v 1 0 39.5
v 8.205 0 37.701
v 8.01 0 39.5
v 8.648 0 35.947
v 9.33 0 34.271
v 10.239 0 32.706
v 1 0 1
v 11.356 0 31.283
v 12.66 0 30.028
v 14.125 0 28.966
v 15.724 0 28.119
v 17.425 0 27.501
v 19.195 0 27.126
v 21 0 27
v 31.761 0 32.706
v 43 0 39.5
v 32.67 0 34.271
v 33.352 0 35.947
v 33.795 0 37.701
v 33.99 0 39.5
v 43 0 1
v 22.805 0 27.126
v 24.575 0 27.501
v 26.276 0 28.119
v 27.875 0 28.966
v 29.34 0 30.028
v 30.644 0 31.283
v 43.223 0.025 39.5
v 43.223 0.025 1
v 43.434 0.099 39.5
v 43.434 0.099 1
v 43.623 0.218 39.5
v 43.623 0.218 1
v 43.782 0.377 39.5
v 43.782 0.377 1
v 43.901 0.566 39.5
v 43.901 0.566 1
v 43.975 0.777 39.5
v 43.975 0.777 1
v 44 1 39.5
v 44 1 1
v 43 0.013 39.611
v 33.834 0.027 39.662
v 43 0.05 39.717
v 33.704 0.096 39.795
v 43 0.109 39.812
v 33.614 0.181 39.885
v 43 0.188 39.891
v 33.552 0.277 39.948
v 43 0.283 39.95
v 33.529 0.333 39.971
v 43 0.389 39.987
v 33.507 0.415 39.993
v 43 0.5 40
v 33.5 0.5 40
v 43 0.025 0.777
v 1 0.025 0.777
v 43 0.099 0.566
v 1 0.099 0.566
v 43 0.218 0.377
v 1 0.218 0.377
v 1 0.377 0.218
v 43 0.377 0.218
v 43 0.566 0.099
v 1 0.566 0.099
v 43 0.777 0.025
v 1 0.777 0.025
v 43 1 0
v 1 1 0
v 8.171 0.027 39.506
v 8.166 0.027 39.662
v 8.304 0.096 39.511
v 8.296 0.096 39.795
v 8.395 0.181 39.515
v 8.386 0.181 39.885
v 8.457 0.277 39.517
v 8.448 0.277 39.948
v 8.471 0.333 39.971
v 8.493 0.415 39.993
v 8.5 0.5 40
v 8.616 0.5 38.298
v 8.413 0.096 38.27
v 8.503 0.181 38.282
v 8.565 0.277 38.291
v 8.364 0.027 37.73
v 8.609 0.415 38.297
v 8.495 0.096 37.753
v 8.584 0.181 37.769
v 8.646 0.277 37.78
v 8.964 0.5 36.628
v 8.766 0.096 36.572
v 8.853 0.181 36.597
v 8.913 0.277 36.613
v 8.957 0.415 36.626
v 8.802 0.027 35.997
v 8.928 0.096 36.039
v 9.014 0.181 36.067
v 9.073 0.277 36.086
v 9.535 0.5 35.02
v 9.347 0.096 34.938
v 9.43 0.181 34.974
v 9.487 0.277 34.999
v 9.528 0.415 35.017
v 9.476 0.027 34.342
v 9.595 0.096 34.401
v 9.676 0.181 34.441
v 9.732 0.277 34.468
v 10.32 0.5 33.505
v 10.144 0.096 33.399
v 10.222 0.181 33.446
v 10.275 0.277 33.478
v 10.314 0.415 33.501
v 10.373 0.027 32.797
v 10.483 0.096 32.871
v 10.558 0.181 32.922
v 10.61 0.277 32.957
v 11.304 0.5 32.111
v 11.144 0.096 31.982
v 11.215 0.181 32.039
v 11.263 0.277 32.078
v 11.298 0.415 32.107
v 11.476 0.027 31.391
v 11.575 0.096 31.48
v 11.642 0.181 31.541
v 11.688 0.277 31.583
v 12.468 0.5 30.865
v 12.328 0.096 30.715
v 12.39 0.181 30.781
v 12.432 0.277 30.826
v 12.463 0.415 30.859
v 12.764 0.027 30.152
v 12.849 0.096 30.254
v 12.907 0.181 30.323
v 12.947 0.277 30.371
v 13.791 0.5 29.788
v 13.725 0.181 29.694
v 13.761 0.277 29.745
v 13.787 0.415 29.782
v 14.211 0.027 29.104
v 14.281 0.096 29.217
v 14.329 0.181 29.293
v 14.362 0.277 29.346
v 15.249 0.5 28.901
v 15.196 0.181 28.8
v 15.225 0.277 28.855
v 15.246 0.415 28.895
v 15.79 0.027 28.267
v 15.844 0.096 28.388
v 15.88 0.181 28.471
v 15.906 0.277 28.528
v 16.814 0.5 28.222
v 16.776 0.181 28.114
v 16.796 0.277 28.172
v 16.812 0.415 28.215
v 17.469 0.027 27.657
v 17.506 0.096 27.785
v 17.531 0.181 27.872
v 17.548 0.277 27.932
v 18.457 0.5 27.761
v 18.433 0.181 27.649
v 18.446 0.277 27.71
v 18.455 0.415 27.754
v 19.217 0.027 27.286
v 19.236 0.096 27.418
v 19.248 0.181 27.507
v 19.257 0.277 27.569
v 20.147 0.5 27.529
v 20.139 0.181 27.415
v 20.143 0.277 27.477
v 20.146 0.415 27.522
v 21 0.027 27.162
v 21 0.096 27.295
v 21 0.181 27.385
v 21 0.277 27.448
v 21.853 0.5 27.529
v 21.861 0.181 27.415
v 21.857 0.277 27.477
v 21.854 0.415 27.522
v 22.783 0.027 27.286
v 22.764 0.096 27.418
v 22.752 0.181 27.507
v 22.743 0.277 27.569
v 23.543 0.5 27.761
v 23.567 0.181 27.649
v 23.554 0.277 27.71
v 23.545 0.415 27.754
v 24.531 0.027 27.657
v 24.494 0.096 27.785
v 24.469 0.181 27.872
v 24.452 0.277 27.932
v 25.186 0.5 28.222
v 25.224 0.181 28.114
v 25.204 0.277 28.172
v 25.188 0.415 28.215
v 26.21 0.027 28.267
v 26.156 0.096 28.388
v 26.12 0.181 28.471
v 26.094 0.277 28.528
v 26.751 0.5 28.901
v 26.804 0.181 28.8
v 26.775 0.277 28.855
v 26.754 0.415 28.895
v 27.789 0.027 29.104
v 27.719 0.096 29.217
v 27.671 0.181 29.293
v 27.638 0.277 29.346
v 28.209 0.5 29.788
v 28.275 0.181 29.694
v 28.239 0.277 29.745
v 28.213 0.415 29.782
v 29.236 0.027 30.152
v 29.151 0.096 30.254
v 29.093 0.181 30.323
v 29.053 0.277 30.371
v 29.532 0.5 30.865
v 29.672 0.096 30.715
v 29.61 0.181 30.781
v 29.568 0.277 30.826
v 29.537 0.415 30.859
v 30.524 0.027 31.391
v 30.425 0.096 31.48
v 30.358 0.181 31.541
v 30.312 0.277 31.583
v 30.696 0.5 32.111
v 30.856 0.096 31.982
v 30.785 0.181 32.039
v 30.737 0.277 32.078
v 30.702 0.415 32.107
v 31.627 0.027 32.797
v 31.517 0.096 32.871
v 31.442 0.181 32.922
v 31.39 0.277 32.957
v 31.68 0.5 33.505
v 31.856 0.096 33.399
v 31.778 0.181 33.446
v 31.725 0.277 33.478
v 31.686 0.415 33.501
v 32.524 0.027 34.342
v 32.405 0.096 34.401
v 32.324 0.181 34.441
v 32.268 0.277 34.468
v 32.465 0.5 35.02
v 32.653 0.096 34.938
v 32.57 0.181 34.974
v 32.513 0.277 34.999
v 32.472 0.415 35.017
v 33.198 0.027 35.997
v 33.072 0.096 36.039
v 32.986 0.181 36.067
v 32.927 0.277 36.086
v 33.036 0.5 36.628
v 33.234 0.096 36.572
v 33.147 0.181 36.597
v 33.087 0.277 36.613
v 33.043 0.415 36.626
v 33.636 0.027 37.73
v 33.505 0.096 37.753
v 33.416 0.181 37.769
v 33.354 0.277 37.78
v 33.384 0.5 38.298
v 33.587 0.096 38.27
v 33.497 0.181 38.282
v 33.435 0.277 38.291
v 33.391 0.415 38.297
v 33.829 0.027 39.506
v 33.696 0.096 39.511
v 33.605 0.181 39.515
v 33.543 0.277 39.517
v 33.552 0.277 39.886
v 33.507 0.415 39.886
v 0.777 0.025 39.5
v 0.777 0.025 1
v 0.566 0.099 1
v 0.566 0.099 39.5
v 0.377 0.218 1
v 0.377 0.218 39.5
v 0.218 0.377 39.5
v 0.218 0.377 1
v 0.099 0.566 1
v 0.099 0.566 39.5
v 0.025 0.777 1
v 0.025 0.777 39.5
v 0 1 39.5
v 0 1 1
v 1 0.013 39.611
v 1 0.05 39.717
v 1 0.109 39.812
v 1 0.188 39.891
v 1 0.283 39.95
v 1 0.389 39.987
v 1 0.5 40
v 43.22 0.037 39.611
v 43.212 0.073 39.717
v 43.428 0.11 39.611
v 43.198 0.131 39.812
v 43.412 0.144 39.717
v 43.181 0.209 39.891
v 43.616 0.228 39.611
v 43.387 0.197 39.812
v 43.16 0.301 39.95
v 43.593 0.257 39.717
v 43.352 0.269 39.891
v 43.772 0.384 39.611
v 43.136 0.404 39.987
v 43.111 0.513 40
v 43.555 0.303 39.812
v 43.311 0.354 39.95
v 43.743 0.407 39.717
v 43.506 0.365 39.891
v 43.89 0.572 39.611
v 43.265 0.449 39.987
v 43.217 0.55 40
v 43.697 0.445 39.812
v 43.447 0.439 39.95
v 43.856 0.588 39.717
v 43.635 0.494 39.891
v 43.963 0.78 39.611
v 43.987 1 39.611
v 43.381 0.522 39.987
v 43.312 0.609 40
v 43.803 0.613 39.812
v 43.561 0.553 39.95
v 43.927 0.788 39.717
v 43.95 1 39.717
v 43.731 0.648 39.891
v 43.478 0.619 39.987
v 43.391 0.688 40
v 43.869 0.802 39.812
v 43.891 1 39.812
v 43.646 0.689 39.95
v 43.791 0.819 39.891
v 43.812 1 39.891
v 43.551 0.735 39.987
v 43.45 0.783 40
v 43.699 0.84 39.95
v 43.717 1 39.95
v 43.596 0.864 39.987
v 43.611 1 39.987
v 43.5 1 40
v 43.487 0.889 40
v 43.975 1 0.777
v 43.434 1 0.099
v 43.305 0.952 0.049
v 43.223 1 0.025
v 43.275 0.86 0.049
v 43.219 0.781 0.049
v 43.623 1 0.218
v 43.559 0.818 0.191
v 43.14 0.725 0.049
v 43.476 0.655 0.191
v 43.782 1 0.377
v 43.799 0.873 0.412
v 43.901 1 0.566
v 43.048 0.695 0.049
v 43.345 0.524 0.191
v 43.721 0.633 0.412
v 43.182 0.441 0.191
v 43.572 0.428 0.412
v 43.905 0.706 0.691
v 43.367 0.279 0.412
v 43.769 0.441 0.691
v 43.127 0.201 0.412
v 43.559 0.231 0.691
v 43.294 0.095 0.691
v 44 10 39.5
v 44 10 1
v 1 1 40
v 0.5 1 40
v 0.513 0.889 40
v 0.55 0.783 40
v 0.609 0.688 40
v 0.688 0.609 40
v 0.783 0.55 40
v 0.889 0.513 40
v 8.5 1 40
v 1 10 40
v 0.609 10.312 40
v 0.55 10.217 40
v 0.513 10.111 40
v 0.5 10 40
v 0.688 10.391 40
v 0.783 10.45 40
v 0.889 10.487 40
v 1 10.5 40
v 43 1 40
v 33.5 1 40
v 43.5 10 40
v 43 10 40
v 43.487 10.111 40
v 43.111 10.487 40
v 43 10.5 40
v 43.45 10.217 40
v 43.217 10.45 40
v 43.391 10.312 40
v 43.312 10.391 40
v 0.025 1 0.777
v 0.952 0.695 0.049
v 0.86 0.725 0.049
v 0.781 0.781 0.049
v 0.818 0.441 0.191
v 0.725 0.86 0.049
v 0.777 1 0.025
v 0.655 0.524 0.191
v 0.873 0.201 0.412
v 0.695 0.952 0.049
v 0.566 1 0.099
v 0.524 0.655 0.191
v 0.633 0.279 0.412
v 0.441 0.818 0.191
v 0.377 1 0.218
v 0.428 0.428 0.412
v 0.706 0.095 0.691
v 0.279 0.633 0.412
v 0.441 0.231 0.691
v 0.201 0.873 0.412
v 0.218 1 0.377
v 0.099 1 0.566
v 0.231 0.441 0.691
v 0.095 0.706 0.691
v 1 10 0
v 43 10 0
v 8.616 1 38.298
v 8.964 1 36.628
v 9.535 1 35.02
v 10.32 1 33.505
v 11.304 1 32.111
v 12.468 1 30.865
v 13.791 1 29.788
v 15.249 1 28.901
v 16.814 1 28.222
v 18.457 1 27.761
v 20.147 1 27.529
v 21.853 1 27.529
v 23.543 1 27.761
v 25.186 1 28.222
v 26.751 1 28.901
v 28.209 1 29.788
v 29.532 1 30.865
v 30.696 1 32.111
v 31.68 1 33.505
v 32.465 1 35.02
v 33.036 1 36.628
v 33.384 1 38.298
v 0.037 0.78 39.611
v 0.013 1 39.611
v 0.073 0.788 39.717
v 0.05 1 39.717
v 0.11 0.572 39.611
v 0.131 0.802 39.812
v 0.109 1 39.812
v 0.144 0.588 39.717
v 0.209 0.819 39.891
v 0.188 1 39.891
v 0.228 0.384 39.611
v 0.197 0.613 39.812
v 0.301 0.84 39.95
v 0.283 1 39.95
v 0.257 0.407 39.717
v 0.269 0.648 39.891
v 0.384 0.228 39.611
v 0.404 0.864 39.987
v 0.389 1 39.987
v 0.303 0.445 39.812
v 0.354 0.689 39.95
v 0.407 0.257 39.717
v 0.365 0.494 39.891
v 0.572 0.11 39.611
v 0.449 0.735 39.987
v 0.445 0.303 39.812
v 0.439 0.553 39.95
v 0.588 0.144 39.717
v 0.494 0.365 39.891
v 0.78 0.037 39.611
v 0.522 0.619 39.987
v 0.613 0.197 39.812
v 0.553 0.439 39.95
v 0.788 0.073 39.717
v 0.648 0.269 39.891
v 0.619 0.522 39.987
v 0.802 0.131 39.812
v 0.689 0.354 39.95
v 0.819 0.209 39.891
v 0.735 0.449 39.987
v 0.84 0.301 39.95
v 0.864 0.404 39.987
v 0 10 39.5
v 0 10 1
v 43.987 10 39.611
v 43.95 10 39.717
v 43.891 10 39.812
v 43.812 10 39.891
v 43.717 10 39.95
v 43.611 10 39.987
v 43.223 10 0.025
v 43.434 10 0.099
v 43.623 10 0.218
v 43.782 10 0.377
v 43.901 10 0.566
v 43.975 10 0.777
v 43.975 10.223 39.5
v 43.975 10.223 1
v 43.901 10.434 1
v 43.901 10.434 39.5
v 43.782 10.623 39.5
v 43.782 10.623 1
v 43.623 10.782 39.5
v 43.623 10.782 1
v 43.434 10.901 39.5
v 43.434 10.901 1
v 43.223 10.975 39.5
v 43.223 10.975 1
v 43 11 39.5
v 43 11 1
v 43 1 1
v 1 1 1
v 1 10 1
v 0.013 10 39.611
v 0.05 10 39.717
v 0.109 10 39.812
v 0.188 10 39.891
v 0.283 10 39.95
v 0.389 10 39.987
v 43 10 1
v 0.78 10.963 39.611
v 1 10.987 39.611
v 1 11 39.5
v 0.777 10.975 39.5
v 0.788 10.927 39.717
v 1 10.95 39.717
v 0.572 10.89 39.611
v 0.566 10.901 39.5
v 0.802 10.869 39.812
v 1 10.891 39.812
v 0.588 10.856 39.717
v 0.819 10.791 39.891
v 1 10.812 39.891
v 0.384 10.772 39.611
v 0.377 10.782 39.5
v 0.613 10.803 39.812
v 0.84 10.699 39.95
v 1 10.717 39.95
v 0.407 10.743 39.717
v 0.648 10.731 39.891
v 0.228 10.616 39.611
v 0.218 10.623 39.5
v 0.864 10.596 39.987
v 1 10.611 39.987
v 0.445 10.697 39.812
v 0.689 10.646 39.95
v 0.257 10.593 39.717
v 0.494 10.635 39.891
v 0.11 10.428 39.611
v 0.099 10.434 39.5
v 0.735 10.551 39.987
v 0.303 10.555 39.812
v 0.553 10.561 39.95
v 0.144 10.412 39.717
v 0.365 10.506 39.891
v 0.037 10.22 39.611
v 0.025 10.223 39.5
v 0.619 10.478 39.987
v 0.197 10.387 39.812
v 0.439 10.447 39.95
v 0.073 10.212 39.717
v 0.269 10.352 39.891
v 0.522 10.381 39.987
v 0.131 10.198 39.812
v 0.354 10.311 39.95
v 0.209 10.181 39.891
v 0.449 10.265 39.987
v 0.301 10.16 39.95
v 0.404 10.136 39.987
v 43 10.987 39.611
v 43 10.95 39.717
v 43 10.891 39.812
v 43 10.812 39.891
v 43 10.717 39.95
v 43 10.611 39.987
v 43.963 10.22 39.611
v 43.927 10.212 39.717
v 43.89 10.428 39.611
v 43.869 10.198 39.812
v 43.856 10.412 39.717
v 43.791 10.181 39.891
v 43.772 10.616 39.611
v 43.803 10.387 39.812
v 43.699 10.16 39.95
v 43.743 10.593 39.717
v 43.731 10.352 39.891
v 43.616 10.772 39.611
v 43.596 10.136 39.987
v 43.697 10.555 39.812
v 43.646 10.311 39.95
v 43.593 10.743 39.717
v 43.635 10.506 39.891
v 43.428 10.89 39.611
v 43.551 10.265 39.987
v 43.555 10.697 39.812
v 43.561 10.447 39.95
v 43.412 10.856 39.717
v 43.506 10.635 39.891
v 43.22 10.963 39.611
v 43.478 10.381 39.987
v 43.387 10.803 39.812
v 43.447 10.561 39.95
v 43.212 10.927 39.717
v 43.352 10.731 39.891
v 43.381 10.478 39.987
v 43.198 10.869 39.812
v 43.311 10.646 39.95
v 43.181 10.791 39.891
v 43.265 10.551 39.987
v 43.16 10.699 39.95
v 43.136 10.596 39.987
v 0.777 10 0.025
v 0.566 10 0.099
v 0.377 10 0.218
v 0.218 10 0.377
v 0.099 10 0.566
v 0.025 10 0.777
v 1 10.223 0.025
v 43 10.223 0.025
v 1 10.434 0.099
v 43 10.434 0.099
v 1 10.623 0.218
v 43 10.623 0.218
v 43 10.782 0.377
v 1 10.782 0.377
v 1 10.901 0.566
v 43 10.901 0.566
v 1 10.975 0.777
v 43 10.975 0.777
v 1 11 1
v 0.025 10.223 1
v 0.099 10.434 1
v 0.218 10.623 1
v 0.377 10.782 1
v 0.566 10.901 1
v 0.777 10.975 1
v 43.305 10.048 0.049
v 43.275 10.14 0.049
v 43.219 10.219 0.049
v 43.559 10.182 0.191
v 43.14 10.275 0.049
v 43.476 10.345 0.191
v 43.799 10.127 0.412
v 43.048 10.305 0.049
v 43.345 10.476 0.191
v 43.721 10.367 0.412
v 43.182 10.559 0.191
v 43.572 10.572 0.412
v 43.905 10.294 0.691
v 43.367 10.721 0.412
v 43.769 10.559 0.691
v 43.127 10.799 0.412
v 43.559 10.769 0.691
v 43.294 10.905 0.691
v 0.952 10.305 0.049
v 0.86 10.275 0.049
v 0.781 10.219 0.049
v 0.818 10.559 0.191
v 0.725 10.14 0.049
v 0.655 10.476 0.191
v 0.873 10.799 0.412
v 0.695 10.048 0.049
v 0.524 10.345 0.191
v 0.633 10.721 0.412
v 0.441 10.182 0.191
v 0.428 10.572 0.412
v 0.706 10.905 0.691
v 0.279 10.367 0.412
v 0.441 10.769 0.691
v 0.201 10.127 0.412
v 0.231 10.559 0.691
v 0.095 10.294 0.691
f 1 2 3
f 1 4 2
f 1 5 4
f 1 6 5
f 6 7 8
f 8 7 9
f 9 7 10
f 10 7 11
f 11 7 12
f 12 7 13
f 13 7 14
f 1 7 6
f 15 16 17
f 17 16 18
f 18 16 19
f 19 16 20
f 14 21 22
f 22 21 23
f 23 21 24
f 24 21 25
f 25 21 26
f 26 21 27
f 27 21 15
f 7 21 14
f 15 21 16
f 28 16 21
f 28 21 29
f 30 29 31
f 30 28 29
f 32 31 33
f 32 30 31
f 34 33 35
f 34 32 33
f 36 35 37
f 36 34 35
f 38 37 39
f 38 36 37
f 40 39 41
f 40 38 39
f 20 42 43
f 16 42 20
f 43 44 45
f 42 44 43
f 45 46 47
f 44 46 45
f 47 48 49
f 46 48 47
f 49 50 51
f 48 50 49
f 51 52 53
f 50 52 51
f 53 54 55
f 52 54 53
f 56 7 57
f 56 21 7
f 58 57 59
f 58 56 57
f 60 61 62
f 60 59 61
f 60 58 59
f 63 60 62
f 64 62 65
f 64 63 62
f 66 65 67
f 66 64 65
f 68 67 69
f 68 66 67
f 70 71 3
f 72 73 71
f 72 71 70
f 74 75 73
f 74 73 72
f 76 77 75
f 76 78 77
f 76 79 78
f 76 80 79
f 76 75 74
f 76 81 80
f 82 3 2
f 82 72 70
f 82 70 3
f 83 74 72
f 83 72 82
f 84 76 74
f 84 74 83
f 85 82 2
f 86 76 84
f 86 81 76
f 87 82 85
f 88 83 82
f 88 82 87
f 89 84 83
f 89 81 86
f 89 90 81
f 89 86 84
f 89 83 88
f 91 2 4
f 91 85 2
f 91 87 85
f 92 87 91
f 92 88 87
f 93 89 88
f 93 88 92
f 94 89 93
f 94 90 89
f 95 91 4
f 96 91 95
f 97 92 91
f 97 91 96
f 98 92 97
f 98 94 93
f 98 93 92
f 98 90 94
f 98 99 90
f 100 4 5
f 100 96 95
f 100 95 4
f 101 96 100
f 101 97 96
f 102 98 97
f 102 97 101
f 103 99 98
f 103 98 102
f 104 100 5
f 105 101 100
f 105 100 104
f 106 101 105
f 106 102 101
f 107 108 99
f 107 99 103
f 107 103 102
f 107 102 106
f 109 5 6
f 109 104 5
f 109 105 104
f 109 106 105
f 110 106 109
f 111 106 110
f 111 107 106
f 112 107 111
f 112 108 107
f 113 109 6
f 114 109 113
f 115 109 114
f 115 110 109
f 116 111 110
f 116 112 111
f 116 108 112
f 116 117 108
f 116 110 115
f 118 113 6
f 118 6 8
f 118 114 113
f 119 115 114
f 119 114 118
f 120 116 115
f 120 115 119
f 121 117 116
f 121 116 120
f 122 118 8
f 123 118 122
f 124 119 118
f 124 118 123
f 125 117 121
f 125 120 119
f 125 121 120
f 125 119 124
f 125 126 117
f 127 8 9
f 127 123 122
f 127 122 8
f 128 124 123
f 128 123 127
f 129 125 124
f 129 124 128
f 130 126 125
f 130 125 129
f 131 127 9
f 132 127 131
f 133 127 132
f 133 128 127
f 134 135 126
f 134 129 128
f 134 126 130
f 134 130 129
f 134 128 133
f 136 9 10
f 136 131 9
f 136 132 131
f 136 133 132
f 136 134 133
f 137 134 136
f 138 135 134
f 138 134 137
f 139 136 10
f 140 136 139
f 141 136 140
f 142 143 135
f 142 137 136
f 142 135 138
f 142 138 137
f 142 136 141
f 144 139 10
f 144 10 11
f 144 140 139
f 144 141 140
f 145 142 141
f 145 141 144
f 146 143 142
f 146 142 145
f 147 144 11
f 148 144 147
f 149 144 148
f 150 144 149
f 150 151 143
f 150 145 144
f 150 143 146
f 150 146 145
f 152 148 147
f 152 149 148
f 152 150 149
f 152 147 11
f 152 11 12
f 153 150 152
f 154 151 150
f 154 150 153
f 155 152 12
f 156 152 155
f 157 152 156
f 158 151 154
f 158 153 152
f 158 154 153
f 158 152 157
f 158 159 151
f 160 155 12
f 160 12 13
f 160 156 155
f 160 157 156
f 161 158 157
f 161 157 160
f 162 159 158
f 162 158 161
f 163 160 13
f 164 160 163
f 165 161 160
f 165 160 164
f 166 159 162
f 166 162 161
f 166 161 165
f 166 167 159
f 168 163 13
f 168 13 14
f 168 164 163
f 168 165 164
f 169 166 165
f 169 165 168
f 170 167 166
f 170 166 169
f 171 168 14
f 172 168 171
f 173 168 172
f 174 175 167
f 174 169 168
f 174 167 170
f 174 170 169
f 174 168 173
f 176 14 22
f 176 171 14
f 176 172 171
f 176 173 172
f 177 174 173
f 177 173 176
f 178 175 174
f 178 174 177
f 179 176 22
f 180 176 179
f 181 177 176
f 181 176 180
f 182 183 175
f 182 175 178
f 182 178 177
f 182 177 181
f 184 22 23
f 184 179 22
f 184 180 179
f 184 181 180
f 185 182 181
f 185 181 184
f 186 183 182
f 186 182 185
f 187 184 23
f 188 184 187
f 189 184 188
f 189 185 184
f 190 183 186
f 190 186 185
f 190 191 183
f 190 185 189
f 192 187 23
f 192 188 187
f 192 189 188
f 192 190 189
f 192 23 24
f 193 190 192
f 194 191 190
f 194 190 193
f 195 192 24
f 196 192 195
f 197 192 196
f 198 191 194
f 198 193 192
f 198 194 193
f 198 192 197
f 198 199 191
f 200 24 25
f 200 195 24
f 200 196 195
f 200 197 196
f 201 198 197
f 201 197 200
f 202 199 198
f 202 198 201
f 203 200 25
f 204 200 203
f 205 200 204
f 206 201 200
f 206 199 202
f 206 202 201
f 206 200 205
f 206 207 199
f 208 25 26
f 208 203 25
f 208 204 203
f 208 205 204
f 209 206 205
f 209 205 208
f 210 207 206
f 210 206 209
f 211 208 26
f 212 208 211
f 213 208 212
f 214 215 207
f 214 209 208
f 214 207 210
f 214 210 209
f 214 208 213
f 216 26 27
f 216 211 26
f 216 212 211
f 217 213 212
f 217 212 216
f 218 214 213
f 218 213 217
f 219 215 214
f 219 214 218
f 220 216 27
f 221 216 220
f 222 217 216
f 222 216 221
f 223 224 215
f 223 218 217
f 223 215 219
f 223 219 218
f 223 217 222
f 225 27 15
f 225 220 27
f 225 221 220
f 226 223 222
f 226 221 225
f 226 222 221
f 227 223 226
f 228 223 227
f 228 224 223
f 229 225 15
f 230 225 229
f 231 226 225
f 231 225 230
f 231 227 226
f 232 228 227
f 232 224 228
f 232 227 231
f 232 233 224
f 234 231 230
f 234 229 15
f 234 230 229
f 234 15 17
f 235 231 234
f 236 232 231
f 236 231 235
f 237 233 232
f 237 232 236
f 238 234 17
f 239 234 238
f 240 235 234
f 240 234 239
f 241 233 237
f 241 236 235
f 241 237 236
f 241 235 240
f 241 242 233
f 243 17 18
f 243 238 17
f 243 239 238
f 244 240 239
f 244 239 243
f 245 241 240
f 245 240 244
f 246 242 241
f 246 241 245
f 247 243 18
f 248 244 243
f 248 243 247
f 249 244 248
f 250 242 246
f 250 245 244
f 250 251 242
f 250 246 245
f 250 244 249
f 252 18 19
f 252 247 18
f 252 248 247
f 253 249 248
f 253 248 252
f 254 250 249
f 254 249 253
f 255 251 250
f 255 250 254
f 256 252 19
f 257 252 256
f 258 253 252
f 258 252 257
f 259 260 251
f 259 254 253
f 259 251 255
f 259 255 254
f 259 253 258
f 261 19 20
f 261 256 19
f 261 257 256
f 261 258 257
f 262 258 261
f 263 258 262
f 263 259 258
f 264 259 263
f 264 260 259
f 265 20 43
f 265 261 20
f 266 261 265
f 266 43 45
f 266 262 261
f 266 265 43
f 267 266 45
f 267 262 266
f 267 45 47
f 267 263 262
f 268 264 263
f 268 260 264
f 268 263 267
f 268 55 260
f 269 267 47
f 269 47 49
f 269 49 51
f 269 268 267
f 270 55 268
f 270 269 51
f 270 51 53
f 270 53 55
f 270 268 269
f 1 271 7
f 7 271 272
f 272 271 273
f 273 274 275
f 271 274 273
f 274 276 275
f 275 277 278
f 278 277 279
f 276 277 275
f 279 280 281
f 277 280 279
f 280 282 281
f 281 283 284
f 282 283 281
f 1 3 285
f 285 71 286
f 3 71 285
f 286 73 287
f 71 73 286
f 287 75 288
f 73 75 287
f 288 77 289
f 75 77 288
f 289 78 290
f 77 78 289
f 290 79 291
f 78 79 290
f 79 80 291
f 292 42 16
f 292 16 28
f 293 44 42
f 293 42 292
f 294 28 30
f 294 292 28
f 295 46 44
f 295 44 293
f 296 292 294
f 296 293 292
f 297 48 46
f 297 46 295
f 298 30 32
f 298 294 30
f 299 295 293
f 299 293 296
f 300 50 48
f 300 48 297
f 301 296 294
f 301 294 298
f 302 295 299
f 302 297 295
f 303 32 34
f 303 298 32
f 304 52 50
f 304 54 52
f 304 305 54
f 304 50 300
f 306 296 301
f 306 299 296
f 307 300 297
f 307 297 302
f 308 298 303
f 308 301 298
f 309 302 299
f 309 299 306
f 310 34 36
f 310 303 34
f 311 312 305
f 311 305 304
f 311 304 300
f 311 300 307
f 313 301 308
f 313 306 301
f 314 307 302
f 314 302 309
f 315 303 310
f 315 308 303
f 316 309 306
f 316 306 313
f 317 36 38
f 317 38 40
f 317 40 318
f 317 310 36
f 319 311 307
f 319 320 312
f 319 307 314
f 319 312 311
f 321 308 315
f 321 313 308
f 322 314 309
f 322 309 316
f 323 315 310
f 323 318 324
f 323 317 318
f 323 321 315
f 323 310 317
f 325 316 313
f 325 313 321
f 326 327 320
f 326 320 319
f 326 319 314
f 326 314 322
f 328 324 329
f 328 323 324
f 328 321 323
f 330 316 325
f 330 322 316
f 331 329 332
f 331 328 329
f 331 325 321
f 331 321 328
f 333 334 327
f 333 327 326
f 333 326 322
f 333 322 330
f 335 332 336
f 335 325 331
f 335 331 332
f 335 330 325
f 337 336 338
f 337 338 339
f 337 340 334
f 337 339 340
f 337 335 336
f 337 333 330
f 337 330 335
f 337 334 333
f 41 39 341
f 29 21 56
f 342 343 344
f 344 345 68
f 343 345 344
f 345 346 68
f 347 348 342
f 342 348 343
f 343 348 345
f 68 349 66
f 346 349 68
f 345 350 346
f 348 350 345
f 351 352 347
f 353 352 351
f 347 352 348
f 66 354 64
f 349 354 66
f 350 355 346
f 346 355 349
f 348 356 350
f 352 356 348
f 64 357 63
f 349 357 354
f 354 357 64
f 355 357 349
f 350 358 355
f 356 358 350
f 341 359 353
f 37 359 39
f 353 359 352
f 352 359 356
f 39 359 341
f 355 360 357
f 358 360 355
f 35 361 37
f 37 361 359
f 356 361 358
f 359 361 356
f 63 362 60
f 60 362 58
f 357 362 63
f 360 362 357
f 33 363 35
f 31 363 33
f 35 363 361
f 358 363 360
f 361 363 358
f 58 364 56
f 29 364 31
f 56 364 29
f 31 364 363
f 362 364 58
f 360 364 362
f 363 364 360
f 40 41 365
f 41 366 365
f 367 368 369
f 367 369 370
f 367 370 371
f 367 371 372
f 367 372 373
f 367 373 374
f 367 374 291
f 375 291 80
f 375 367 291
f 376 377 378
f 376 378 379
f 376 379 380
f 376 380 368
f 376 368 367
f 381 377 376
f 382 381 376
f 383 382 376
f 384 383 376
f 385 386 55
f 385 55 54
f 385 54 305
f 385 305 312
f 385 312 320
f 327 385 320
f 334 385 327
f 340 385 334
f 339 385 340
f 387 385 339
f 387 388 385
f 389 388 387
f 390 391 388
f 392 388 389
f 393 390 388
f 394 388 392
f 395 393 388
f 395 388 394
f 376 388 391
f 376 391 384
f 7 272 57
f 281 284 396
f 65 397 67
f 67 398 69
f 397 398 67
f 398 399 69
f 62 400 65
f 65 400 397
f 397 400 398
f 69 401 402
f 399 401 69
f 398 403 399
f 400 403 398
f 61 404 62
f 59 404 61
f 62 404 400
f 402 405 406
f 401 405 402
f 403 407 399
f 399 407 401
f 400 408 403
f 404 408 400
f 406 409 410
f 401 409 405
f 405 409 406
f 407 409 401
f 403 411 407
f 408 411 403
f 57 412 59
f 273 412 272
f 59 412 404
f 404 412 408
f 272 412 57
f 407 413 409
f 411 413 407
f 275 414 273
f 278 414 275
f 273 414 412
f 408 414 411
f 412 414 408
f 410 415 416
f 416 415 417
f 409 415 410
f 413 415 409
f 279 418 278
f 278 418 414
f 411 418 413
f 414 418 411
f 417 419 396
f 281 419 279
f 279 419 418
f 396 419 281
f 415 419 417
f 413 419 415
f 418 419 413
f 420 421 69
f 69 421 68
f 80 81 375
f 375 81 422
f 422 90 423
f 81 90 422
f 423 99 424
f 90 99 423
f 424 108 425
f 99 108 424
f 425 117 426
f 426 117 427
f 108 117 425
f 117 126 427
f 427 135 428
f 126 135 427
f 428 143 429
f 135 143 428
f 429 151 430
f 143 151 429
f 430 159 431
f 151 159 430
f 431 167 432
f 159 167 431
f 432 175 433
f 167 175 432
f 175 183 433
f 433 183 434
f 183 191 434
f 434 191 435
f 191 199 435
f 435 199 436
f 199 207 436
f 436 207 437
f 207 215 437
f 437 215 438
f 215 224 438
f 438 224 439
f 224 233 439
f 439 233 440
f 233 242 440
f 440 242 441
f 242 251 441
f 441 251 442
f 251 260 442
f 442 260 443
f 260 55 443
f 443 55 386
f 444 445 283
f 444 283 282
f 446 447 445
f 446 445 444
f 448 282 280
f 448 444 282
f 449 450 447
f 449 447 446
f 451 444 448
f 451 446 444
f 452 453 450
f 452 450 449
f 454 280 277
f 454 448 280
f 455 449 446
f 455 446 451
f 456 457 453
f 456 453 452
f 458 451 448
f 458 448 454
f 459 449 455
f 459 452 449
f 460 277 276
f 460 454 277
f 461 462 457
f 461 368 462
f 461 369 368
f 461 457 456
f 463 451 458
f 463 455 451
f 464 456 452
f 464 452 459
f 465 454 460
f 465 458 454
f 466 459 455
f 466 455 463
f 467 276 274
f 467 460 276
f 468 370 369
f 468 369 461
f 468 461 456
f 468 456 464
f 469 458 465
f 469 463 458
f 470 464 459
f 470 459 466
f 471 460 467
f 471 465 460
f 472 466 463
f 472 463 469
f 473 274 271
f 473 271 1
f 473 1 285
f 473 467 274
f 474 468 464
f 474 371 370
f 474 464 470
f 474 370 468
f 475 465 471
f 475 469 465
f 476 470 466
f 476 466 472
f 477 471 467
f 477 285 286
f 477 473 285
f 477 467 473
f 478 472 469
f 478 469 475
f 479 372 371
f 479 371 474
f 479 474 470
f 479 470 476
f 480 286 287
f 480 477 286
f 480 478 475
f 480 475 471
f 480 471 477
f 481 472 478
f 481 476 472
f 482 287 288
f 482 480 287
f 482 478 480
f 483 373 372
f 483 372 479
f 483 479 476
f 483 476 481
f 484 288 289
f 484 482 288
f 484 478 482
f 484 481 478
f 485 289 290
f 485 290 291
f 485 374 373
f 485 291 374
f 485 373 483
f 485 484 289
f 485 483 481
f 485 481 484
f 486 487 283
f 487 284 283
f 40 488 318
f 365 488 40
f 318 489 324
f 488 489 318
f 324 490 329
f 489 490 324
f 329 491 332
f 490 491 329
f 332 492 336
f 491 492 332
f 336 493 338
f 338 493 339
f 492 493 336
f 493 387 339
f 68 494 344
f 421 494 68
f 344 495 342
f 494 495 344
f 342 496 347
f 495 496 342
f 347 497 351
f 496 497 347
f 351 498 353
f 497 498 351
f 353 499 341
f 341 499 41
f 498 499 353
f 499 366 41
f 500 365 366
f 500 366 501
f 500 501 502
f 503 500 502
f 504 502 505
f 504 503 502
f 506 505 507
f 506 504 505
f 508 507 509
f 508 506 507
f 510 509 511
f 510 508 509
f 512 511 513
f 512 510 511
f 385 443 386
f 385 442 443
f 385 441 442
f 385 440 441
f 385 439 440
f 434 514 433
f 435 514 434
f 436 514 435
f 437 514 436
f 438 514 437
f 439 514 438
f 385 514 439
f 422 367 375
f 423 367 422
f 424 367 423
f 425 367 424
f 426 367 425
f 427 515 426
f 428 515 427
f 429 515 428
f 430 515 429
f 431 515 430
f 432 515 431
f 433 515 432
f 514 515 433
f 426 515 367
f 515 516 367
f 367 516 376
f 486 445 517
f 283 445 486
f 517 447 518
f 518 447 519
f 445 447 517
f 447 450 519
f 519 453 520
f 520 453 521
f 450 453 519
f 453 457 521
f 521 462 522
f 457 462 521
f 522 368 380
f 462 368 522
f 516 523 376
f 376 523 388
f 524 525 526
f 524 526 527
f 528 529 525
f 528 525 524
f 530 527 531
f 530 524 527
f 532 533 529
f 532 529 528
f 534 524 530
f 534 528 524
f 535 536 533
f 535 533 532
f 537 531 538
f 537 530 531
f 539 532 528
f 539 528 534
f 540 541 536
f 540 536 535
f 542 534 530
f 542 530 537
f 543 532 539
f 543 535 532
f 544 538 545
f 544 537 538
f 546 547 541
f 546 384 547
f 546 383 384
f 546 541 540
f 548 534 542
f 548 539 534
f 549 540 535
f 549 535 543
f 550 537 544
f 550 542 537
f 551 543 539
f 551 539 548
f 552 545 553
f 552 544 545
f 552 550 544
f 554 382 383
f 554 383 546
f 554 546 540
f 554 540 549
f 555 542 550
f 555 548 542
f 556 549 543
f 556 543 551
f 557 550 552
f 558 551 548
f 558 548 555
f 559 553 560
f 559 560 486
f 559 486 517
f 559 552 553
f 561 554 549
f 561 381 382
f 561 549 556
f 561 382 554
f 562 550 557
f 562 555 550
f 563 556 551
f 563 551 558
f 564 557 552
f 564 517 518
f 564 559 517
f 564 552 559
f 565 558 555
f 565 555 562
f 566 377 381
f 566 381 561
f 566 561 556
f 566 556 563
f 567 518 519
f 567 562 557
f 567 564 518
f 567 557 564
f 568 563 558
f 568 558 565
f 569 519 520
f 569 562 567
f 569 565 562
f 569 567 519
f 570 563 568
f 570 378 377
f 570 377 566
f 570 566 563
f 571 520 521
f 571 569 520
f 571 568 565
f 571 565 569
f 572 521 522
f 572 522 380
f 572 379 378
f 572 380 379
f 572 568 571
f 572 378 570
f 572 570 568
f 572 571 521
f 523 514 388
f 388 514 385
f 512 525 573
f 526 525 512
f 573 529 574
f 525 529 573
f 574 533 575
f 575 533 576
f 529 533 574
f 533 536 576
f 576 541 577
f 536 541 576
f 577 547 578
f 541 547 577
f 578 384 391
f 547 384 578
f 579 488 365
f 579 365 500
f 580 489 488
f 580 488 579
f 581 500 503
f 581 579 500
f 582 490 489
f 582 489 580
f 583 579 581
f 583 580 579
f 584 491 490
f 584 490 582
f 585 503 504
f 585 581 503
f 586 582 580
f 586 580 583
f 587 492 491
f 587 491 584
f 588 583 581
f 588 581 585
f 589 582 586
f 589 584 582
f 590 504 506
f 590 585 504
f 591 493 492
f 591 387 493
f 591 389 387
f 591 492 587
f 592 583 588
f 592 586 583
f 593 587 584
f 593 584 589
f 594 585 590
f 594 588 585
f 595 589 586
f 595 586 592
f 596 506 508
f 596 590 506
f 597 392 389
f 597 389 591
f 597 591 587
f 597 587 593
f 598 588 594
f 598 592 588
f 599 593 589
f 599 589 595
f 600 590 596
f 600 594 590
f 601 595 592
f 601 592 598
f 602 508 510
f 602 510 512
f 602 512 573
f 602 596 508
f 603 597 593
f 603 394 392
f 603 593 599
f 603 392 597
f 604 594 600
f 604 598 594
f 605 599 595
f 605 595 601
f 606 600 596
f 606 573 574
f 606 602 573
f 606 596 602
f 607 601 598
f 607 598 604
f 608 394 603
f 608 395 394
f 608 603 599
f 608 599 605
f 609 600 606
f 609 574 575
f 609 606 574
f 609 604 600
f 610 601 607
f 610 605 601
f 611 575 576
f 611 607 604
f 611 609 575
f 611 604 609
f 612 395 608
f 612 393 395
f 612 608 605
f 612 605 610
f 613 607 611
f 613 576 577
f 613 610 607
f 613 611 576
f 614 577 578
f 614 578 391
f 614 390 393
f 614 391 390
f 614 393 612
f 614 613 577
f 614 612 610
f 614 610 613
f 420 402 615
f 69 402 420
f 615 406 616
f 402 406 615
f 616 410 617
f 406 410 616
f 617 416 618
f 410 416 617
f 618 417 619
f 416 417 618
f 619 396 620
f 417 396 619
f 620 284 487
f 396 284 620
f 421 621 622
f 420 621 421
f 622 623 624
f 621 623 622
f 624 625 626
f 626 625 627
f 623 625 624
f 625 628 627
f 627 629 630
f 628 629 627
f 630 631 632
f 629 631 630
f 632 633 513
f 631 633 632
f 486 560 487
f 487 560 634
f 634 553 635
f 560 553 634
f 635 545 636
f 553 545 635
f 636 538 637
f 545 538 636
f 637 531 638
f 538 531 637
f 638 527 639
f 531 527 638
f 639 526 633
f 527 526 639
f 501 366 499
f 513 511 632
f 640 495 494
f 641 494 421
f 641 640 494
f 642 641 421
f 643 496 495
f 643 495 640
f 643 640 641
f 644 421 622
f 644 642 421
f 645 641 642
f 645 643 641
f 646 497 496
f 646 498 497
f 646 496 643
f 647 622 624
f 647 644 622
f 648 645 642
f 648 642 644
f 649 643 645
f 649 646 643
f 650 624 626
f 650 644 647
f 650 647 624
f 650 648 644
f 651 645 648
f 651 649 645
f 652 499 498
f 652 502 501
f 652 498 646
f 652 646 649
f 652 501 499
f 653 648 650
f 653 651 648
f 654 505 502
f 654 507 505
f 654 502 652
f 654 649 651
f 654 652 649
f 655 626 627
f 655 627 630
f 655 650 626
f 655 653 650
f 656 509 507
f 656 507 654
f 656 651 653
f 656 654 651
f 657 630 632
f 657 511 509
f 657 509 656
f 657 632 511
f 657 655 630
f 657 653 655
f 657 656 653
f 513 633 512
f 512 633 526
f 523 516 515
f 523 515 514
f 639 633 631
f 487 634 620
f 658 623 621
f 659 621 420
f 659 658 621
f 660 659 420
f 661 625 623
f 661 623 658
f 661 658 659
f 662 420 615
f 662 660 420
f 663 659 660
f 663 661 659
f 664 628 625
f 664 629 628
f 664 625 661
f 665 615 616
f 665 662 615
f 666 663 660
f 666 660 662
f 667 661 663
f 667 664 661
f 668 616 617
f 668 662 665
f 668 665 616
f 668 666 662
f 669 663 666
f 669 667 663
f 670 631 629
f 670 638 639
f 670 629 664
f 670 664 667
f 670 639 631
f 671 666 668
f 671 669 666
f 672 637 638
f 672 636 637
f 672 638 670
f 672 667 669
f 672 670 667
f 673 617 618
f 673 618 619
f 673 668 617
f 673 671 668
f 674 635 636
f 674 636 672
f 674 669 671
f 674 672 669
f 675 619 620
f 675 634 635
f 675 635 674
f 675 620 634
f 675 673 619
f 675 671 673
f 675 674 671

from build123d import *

# Parameters (mm, degrees)
SKETCH_W        = 44
SKETCH_H        = 11
PAD_DEPTH       = 40
SKETCH001_W     = 42
SKETCH001_H     = 9
POCKET_DEPTH    = 39.001
SKETCH002_R     = 12.5
POCKET001_DEPTH = 1
FILLET_R        = 1
FILLET001_R     = 0.5


with BuildPart() as part:
    # Sketch → Pad (new body)
    with BuildSketch(Plane.XY):
        with Locations((22, 5.5)):
            Rectangle(SKETCH_W, SKETCH_H)
    extrude(amount=PAD_DEPTH)

    # Sketch001 → Pocket (cut, through all)
    with BuildSketch(Plane.XY.offset(1)):
        with Locations((22, 5.5)):
            Rectangle(SKETCH001_W, SKETCH001_H)
    extrude(amount=POCKET_DEPTH, mode=Mode.SUBTRACT)

    # Sketch002 (on Face1 of Pocket) → Pocket001 (cut)
    with BuildSketch(Plane.XZ):
        with Locations((21, 40)):
            Circle(SKETCH002_R)
    extrude(amount=-POCKET001_DEPTH, mode=Mode.SUBTRACT)

    # Fillet
    fillet_edges = [part.edges().sort_by_distance(p)[0] for p in [
        (0, 0, 20),
        (0, 11, 20),
        (44, 0, 20),
        (44, 11, 20),
        (44, 5.5, 0),
        (22, 0, 0),
        (22, 11, 0),
        (0, 5.5, 0),
    ]]
    fillet(fillet_edges, radius=FILLET_R)

    # Fillet001
    fillet001_edges = [part.edges().sort_by_distance(p)[0] for p in [
        (21, 0, 27.5),
        (4.75, 0, 40),
        (0, 5.5, 40),
        (0.292893, 0.292893, 40),
        (0.292893, 10.707107, 40),
        (22, 11, 40),
        (44, 5.5, 40),
        (43.707107, 10.707107, 40),
        (43.707107, 0.292893, 40),
        (38.25, 0, 40),
    ]]
    fillet(fillet001_edges, radius=FILLET001_R)


solid = part.part
